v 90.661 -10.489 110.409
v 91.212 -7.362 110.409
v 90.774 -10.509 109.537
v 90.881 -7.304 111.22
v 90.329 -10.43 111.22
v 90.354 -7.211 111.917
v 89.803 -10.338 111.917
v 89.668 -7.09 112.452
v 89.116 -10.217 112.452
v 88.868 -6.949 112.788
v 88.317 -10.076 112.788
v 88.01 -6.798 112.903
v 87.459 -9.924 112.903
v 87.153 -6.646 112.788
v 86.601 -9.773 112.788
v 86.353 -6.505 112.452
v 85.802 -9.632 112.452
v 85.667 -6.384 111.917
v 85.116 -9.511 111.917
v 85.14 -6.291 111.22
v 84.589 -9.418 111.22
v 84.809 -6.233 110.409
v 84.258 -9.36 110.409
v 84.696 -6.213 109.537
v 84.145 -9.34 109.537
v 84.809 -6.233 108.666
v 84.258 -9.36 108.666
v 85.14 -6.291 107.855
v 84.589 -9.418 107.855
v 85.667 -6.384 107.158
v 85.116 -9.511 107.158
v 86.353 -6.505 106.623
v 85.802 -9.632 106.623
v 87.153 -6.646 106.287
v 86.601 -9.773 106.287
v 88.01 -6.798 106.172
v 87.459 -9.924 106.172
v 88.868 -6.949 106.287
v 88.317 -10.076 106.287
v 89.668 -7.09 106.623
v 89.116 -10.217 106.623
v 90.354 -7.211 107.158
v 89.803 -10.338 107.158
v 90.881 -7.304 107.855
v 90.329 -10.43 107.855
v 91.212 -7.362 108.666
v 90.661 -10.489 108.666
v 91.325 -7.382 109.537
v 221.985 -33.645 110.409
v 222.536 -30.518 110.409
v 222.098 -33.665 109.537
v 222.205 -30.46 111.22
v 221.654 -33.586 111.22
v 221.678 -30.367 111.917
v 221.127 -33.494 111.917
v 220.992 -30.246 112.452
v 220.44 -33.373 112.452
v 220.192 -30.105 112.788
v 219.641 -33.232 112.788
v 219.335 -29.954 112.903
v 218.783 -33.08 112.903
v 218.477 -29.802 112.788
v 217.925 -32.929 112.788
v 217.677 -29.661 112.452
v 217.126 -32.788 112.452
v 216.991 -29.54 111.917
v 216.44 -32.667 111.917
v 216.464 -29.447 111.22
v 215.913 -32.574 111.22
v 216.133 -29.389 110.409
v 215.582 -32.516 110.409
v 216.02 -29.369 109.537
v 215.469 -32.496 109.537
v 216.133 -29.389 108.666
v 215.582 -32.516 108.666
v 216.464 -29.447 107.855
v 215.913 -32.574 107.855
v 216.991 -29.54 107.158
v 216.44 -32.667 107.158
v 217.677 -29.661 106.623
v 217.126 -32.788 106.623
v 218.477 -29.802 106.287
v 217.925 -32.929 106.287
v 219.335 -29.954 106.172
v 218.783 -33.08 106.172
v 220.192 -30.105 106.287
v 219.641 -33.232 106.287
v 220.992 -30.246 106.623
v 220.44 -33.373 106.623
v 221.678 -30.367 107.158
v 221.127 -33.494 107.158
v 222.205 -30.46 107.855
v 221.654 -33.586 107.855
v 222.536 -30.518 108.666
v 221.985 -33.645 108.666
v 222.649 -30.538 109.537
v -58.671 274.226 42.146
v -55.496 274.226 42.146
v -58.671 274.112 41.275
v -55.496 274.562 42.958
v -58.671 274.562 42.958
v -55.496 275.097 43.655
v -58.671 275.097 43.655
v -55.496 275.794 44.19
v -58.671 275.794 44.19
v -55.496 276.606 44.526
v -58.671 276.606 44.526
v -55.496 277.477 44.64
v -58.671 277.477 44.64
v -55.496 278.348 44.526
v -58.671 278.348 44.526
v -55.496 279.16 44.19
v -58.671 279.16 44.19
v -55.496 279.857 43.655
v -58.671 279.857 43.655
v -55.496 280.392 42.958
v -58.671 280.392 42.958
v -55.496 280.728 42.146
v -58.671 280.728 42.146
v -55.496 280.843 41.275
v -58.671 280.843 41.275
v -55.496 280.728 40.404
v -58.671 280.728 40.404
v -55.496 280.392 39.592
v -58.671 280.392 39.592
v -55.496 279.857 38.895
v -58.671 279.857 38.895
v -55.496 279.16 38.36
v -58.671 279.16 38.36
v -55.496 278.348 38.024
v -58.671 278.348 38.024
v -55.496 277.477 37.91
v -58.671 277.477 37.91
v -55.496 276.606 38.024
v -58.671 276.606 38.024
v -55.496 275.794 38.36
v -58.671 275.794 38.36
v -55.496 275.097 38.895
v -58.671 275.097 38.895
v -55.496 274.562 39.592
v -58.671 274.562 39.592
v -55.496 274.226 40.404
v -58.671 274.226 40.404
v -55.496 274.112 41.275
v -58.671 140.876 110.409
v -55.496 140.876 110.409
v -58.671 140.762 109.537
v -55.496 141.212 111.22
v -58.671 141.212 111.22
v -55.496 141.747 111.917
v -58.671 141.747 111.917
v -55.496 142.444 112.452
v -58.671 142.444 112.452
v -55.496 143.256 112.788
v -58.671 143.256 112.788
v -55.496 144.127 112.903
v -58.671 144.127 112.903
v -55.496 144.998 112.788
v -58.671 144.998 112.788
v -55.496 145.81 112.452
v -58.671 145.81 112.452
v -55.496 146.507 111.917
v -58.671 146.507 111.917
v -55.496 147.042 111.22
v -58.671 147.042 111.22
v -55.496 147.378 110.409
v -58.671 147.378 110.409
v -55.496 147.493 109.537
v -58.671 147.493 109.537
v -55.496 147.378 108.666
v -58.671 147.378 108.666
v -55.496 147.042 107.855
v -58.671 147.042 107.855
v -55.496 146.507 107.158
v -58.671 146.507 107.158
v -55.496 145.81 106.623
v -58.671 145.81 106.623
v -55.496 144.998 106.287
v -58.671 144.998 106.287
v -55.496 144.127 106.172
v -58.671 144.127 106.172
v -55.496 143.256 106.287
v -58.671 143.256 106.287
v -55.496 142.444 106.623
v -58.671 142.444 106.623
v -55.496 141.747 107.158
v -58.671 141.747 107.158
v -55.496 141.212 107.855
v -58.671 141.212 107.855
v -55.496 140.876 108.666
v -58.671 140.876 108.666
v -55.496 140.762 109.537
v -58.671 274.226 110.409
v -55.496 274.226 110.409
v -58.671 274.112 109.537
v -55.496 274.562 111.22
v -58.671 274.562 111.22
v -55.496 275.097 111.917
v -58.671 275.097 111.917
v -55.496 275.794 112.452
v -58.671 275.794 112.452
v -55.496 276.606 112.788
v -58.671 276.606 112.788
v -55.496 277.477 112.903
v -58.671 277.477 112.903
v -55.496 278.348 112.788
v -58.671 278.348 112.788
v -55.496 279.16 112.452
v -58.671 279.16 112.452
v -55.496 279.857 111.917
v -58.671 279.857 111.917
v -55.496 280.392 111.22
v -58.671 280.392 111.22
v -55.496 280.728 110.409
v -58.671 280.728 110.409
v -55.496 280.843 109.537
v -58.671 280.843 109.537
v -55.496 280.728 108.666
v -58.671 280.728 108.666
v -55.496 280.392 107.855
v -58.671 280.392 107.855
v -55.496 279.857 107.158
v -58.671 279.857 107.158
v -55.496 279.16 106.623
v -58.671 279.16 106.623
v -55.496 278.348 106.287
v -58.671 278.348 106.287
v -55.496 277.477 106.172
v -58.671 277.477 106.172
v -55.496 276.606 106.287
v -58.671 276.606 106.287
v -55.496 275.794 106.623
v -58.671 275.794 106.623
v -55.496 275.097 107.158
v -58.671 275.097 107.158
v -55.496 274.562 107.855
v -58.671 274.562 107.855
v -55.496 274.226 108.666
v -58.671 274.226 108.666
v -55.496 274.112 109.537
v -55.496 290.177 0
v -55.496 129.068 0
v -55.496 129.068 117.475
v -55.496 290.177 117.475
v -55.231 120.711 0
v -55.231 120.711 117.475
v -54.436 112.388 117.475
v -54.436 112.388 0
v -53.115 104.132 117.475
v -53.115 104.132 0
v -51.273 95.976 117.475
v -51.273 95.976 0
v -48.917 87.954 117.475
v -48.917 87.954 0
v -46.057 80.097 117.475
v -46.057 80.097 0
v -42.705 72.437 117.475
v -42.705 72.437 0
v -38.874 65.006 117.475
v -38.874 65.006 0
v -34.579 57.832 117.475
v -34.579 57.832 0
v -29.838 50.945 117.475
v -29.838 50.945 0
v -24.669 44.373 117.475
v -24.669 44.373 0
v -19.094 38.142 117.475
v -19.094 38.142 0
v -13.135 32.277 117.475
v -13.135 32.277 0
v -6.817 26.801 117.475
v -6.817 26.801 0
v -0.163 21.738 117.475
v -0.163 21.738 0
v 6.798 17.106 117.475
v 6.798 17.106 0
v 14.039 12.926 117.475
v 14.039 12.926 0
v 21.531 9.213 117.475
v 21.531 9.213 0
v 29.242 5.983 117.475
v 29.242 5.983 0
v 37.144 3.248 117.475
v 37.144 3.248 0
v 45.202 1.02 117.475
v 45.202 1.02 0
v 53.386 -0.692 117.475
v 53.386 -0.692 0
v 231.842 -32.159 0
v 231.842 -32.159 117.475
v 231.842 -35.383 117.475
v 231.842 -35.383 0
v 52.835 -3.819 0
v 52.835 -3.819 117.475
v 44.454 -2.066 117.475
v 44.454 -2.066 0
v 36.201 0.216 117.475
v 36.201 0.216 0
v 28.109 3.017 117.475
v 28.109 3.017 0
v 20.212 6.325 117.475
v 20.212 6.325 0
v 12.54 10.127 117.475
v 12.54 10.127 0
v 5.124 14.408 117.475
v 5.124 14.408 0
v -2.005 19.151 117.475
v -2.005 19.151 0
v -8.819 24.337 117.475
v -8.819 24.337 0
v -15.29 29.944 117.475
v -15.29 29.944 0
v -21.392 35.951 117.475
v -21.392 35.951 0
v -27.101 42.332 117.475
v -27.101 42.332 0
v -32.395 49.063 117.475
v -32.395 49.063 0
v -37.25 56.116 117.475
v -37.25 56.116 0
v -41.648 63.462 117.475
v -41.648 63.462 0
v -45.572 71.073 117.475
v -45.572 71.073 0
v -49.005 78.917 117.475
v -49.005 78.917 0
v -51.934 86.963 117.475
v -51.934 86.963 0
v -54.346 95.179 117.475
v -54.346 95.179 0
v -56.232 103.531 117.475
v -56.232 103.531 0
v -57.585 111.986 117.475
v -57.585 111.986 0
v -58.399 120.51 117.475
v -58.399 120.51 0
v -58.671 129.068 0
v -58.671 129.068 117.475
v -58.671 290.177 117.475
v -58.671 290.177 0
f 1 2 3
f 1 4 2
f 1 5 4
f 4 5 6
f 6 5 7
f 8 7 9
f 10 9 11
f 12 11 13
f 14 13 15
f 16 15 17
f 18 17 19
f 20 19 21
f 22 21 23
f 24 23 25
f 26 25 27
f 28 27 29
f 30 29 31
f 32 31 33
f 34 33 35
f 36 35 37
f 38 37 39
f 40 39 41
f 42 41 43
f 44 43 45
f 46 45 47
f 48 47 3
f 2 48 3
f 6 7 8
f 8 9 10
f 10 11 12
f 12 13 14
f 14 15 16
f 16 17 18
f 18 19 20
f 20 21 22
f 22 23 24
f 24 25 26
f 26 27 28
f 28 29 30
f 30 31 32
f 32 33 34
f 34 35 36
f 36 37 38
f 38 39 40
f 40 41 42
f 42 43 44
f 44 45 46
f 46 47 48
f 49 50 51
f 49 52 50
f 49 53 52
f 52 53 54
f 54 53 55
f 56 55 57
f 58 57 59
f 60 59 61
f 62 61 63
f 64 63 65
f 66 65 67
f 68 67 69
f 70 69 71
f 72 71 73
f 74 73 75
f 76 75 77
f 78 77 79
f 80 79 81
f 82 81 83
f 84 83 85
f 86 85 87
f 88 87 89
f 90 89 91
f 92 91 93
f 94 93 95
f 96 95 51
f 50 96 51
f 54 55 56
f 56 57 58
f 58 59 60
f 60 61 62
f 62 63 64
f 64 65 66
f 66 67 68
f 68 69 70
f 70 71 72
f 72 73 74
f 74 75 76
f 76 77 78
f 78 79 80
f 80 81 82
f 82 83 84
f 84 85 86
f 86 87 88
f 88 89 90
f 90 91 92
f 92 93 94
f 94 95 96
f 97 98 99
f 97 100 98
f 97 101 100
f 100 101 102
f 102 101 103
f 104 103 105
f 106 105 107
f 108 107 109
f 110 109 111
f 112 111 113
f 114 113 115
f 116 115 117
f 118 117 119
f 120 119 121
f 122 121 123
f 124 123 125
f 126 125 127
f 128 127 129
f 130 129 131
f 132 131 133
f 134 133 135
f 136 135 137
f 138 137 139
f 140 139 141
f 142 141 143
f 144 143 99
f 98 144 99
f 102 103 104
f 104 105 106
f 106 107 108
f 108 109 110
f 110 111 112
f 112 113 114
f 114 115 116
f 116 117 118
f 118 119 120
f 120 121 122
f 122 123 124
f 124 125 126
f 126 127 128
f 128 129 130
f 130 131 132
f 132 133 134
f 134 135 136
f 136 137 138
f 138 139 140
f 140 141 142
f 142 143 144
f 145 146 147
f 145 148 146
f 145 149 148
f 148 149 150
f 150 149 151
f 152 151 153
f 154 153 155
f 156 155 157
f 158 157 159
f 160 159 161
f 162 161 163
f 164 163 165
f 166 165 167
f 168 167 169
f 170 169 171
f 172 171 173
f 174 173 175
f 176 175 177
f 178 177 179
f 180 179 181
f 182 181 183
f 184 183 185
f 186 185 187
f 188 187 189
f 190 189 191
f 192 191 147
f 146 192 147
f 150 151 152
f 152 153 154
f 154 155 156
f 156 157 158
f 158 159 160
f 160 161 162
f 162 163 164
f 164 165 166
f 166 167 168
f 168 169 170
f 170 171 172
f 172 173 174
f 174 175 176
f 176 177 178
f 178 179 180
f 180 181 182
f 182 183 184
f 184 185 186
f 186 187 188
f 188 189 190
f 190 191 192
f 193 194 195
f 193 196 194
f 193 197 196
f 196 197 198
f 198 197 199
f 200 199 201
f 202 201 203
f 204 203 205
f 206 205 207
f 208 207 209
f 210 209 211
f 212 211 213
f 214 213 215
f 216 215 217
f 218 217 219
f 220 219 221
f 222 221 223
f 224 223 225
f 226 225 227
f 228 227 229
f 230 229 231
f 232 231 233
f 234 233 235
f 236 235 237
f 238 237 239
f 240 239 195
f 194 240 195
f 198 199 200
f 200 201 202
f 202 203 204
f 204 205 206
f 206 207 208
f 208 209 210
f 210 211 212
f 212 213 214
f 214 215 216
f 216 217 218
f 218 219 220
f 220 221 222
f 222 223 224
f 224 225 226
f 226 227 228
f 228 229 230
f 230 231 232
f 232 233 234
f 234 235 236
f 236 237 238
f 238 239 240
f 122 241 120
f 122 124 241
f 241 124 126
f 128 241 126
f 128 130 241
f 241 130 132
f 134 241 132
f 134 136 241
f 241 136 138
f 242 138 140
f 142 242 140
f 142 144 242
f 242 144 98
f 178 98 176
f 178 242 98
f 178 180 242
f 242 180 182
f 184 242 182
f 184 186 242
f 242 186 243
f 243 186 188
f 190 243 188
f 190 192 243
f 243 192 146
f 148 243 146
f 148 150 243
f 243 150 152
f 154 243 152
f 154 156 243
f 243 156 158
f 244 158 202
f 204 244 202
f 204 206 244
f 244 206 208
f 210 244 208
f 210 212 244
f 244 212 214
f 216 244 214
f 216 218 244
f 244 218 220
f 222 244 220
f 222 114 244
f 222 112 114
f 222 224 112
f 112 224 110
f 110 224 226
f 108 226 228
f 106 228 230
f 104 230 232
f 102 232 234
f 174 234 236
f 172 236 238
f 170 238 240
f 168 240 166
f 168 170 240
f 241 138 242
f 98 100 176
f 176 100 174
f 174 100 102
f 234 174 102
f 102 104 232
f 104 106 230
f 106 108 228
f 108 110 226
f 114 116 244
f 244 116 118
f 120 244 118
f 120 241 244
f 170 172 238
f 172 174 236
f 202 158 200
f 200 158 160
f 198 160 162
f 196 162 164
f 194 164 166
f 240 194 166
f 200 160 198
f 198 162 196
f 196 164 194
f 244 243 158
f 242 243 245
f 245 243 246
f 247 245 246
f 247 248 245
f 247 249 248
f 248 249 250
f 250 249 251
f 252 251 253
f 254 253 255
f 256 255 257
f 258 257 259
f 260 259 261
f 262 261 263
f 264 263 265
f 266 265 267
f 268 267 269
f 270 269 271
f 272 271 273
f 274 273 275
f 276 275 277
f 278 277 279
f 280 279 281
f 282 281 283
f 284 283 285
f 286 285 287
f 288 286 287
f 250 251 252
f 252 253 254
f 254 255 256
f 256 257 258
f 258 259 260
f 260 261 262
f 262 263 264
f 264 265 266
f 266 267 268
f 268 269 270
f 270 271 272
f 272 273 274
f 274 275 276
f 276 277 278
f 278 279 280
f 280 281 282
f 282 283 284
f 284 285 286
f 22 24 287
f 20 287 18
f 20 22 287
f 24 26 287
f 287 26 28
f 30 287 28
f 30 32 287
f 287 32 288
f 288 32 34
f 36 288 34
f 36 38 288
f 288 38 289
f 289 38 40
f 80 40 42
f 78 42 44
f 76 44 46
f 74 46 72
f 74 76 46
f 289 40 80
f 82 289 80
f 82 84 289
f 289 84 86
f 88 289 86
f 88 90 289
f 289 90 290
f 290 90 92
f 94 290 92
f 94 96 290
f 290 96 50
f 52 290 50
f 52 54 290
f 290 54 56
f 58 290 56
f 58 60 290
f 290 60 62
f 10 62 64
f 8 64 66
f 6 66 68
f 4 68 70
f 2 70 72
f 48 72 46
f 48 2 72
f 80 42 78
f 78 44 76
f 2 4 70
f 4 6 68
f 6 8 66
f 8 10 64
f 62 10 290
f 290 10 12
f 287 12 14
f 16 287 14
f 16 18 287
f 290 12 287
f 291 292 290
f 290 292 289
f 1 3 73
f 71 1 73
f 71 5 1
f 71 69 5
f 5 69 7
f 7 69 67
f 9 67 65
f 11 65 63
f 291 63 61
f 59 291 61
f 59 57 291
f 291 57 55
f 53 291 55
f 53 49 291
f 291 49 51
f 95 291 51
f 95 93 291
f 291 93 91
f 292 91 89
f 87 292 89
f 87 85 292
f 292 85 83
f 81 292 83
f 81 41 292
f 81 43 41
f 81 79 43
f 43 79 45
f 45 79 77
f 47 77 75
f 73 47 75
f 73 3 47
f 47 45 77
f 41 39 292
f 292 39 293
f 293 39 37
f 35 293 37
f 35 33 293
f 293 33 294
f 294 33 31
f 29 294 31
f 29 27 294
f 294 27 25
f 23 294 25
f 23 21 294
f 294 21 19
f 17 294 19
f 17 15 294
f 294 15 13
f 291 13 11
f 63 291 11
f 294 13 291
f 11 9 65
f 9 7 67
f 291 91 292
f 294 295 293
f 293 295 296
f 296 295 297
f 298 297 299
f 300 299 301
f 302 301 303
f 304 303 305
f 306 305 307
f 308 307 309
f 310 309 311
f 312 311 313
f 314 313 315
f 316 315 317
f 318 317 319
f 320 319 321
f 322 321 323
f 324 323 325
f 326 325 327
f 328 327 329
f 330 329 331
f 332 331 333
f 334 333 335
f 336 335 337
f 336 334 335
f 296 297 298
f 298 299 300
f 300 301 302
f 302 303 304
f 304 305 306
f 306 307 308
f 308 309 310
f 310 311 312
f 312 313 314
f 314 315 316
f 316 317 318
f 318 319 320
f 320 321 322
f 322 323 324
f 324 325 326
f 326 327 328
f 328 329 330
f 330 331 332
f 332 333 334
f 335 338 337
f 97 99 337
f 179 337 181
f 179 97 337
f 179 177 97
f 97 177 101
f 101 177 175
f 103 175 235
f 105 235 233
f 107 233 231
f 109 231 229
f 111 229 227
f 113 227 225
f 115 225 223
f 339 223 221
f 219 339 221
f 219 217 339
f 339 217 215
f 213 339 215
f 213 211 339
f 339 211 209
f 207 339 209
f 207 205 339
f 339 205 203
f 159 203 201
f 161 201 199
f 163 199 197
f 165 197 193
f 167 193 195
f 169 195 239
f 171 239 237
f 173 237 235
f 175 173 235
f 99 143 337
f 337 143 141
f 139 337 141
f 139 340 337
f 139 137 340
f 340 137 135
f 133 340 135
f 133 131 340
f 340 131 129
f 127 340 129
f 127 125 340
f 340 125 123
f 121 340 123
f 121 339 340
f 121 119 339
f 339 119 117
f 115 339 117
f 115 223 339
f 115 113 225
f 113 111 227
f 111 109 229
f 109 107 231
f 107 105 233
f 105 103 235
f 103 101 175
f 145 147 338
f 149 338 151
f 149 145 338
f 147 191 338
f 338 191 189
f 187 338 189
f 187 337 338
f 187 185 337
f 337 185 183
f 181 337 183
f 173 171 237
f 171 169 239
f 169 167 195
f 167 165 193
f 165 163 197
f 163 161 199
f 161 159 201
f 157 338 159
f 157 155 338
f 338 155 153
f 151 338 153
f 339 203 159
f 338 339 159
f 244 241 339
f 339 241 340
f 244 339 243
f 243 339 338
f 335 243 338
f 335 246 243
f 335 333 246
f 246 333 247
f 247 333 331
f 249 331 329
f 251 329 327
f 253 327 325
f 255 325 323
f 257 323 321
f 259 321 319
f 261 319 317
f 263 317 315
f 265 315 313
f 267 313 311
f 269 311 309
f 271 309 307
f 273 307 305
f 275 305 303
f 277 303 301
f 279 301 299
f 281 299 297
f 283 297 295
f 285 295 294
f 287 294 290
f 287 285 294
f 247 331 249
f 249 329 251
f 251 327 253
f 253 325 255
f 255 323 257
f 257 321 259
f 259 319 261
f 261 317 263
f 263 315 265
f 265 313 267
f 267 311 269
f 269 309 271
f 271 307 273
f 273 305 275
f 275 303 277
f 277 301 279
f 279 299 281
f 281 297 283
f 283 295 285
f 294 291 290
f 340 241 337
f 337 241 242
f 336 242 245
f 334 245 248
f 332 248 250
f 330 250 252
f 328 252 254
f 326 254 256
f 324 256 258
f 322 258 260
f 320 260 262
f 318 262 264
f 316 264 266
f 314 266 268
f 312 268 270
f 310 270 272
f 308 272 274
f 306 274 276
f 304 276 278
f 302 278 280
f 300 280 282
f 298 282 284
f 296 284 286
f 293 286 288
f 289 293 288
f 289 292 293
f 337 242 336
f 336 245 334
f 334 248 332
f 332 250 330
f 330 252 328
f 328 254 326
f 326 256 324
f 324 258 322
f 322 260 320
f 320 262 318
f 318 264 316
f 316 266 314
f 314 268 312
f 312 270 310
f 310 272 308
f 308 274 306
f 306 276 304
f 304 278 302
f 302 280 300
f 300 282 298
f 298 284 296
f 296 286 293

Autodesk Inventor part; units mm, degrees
ref_plane "YZ Plane" through (0, 0, 0) normal (1, 0, 0) x (0, 1, 0)
ref_plane "XZ Plane" through (0, 0, 0) normal (0, 1, 0) x (-1, 0, 0)
ref_plane "XY Plane" through (0, 0, 0) normal (0, 0, 1) x (1, 0, 0)
sketch "Sketch1" plane through (0, 0, 0) normal (0, 0, 1) x (1, 0, 0)
  line L0 (-58.6709, 290.177) -> (-55.4959, 290.177) projected
  line L1 (-58.6709, 290.177) -> (-58.6709, 129.0683) projected
  arc A0 (-58.6709, 129.0683) -> (52.835, -3.8192) centre (76.2666, 129.0683) ccw projected
  line L2 (52.835, -3.8192) -> (231.8416, -35.3829) projected
  line L3 (231.8416, -32.1589) -> (231.8416, -35.3829) projected
  line L4 (231.8416, -32.1589) -> (53.3863, -0.6924) projected
  arc A1 (-55.4959, 129.0683) -> (53.3863, -0.6924) centre (76.2666, 129.0683) ccw projected
  line L5 (-55.4959, 129.0683) -> (-55.4959, 290.177) projected
  point P0 (0, 0)
extrude "Extrusion1" add sketch "Sketch1" along normal blind 117.475
hole "Hole1" at (-55.4959, 277.477, 109.5375) direction (-1, 0, 0) diameter 6.731 depth 25.4 tip angle 118
pattern_linear "Rectangular Pattern1" count 2 spacing 133.35 along (0, -1, 0) of "Hole1"
pattern_linear "Rectangular Pattern2" count 2 spacing 68.2625 along (0, 0, -1) of "Hole1"
hole "Hole2" at (219.3346, -29.9536, 109.5375) direction (-0.1736482, -0.9848078, 0) diameter 6.731 depth 25.4 tip angle 118
pattern_linear "Rectangular Pattern4" count 2 spacing 133.35 along (-0.9848078, 0.1736482, 0) of "Hole2"
properties part number "GE-12070-03"
